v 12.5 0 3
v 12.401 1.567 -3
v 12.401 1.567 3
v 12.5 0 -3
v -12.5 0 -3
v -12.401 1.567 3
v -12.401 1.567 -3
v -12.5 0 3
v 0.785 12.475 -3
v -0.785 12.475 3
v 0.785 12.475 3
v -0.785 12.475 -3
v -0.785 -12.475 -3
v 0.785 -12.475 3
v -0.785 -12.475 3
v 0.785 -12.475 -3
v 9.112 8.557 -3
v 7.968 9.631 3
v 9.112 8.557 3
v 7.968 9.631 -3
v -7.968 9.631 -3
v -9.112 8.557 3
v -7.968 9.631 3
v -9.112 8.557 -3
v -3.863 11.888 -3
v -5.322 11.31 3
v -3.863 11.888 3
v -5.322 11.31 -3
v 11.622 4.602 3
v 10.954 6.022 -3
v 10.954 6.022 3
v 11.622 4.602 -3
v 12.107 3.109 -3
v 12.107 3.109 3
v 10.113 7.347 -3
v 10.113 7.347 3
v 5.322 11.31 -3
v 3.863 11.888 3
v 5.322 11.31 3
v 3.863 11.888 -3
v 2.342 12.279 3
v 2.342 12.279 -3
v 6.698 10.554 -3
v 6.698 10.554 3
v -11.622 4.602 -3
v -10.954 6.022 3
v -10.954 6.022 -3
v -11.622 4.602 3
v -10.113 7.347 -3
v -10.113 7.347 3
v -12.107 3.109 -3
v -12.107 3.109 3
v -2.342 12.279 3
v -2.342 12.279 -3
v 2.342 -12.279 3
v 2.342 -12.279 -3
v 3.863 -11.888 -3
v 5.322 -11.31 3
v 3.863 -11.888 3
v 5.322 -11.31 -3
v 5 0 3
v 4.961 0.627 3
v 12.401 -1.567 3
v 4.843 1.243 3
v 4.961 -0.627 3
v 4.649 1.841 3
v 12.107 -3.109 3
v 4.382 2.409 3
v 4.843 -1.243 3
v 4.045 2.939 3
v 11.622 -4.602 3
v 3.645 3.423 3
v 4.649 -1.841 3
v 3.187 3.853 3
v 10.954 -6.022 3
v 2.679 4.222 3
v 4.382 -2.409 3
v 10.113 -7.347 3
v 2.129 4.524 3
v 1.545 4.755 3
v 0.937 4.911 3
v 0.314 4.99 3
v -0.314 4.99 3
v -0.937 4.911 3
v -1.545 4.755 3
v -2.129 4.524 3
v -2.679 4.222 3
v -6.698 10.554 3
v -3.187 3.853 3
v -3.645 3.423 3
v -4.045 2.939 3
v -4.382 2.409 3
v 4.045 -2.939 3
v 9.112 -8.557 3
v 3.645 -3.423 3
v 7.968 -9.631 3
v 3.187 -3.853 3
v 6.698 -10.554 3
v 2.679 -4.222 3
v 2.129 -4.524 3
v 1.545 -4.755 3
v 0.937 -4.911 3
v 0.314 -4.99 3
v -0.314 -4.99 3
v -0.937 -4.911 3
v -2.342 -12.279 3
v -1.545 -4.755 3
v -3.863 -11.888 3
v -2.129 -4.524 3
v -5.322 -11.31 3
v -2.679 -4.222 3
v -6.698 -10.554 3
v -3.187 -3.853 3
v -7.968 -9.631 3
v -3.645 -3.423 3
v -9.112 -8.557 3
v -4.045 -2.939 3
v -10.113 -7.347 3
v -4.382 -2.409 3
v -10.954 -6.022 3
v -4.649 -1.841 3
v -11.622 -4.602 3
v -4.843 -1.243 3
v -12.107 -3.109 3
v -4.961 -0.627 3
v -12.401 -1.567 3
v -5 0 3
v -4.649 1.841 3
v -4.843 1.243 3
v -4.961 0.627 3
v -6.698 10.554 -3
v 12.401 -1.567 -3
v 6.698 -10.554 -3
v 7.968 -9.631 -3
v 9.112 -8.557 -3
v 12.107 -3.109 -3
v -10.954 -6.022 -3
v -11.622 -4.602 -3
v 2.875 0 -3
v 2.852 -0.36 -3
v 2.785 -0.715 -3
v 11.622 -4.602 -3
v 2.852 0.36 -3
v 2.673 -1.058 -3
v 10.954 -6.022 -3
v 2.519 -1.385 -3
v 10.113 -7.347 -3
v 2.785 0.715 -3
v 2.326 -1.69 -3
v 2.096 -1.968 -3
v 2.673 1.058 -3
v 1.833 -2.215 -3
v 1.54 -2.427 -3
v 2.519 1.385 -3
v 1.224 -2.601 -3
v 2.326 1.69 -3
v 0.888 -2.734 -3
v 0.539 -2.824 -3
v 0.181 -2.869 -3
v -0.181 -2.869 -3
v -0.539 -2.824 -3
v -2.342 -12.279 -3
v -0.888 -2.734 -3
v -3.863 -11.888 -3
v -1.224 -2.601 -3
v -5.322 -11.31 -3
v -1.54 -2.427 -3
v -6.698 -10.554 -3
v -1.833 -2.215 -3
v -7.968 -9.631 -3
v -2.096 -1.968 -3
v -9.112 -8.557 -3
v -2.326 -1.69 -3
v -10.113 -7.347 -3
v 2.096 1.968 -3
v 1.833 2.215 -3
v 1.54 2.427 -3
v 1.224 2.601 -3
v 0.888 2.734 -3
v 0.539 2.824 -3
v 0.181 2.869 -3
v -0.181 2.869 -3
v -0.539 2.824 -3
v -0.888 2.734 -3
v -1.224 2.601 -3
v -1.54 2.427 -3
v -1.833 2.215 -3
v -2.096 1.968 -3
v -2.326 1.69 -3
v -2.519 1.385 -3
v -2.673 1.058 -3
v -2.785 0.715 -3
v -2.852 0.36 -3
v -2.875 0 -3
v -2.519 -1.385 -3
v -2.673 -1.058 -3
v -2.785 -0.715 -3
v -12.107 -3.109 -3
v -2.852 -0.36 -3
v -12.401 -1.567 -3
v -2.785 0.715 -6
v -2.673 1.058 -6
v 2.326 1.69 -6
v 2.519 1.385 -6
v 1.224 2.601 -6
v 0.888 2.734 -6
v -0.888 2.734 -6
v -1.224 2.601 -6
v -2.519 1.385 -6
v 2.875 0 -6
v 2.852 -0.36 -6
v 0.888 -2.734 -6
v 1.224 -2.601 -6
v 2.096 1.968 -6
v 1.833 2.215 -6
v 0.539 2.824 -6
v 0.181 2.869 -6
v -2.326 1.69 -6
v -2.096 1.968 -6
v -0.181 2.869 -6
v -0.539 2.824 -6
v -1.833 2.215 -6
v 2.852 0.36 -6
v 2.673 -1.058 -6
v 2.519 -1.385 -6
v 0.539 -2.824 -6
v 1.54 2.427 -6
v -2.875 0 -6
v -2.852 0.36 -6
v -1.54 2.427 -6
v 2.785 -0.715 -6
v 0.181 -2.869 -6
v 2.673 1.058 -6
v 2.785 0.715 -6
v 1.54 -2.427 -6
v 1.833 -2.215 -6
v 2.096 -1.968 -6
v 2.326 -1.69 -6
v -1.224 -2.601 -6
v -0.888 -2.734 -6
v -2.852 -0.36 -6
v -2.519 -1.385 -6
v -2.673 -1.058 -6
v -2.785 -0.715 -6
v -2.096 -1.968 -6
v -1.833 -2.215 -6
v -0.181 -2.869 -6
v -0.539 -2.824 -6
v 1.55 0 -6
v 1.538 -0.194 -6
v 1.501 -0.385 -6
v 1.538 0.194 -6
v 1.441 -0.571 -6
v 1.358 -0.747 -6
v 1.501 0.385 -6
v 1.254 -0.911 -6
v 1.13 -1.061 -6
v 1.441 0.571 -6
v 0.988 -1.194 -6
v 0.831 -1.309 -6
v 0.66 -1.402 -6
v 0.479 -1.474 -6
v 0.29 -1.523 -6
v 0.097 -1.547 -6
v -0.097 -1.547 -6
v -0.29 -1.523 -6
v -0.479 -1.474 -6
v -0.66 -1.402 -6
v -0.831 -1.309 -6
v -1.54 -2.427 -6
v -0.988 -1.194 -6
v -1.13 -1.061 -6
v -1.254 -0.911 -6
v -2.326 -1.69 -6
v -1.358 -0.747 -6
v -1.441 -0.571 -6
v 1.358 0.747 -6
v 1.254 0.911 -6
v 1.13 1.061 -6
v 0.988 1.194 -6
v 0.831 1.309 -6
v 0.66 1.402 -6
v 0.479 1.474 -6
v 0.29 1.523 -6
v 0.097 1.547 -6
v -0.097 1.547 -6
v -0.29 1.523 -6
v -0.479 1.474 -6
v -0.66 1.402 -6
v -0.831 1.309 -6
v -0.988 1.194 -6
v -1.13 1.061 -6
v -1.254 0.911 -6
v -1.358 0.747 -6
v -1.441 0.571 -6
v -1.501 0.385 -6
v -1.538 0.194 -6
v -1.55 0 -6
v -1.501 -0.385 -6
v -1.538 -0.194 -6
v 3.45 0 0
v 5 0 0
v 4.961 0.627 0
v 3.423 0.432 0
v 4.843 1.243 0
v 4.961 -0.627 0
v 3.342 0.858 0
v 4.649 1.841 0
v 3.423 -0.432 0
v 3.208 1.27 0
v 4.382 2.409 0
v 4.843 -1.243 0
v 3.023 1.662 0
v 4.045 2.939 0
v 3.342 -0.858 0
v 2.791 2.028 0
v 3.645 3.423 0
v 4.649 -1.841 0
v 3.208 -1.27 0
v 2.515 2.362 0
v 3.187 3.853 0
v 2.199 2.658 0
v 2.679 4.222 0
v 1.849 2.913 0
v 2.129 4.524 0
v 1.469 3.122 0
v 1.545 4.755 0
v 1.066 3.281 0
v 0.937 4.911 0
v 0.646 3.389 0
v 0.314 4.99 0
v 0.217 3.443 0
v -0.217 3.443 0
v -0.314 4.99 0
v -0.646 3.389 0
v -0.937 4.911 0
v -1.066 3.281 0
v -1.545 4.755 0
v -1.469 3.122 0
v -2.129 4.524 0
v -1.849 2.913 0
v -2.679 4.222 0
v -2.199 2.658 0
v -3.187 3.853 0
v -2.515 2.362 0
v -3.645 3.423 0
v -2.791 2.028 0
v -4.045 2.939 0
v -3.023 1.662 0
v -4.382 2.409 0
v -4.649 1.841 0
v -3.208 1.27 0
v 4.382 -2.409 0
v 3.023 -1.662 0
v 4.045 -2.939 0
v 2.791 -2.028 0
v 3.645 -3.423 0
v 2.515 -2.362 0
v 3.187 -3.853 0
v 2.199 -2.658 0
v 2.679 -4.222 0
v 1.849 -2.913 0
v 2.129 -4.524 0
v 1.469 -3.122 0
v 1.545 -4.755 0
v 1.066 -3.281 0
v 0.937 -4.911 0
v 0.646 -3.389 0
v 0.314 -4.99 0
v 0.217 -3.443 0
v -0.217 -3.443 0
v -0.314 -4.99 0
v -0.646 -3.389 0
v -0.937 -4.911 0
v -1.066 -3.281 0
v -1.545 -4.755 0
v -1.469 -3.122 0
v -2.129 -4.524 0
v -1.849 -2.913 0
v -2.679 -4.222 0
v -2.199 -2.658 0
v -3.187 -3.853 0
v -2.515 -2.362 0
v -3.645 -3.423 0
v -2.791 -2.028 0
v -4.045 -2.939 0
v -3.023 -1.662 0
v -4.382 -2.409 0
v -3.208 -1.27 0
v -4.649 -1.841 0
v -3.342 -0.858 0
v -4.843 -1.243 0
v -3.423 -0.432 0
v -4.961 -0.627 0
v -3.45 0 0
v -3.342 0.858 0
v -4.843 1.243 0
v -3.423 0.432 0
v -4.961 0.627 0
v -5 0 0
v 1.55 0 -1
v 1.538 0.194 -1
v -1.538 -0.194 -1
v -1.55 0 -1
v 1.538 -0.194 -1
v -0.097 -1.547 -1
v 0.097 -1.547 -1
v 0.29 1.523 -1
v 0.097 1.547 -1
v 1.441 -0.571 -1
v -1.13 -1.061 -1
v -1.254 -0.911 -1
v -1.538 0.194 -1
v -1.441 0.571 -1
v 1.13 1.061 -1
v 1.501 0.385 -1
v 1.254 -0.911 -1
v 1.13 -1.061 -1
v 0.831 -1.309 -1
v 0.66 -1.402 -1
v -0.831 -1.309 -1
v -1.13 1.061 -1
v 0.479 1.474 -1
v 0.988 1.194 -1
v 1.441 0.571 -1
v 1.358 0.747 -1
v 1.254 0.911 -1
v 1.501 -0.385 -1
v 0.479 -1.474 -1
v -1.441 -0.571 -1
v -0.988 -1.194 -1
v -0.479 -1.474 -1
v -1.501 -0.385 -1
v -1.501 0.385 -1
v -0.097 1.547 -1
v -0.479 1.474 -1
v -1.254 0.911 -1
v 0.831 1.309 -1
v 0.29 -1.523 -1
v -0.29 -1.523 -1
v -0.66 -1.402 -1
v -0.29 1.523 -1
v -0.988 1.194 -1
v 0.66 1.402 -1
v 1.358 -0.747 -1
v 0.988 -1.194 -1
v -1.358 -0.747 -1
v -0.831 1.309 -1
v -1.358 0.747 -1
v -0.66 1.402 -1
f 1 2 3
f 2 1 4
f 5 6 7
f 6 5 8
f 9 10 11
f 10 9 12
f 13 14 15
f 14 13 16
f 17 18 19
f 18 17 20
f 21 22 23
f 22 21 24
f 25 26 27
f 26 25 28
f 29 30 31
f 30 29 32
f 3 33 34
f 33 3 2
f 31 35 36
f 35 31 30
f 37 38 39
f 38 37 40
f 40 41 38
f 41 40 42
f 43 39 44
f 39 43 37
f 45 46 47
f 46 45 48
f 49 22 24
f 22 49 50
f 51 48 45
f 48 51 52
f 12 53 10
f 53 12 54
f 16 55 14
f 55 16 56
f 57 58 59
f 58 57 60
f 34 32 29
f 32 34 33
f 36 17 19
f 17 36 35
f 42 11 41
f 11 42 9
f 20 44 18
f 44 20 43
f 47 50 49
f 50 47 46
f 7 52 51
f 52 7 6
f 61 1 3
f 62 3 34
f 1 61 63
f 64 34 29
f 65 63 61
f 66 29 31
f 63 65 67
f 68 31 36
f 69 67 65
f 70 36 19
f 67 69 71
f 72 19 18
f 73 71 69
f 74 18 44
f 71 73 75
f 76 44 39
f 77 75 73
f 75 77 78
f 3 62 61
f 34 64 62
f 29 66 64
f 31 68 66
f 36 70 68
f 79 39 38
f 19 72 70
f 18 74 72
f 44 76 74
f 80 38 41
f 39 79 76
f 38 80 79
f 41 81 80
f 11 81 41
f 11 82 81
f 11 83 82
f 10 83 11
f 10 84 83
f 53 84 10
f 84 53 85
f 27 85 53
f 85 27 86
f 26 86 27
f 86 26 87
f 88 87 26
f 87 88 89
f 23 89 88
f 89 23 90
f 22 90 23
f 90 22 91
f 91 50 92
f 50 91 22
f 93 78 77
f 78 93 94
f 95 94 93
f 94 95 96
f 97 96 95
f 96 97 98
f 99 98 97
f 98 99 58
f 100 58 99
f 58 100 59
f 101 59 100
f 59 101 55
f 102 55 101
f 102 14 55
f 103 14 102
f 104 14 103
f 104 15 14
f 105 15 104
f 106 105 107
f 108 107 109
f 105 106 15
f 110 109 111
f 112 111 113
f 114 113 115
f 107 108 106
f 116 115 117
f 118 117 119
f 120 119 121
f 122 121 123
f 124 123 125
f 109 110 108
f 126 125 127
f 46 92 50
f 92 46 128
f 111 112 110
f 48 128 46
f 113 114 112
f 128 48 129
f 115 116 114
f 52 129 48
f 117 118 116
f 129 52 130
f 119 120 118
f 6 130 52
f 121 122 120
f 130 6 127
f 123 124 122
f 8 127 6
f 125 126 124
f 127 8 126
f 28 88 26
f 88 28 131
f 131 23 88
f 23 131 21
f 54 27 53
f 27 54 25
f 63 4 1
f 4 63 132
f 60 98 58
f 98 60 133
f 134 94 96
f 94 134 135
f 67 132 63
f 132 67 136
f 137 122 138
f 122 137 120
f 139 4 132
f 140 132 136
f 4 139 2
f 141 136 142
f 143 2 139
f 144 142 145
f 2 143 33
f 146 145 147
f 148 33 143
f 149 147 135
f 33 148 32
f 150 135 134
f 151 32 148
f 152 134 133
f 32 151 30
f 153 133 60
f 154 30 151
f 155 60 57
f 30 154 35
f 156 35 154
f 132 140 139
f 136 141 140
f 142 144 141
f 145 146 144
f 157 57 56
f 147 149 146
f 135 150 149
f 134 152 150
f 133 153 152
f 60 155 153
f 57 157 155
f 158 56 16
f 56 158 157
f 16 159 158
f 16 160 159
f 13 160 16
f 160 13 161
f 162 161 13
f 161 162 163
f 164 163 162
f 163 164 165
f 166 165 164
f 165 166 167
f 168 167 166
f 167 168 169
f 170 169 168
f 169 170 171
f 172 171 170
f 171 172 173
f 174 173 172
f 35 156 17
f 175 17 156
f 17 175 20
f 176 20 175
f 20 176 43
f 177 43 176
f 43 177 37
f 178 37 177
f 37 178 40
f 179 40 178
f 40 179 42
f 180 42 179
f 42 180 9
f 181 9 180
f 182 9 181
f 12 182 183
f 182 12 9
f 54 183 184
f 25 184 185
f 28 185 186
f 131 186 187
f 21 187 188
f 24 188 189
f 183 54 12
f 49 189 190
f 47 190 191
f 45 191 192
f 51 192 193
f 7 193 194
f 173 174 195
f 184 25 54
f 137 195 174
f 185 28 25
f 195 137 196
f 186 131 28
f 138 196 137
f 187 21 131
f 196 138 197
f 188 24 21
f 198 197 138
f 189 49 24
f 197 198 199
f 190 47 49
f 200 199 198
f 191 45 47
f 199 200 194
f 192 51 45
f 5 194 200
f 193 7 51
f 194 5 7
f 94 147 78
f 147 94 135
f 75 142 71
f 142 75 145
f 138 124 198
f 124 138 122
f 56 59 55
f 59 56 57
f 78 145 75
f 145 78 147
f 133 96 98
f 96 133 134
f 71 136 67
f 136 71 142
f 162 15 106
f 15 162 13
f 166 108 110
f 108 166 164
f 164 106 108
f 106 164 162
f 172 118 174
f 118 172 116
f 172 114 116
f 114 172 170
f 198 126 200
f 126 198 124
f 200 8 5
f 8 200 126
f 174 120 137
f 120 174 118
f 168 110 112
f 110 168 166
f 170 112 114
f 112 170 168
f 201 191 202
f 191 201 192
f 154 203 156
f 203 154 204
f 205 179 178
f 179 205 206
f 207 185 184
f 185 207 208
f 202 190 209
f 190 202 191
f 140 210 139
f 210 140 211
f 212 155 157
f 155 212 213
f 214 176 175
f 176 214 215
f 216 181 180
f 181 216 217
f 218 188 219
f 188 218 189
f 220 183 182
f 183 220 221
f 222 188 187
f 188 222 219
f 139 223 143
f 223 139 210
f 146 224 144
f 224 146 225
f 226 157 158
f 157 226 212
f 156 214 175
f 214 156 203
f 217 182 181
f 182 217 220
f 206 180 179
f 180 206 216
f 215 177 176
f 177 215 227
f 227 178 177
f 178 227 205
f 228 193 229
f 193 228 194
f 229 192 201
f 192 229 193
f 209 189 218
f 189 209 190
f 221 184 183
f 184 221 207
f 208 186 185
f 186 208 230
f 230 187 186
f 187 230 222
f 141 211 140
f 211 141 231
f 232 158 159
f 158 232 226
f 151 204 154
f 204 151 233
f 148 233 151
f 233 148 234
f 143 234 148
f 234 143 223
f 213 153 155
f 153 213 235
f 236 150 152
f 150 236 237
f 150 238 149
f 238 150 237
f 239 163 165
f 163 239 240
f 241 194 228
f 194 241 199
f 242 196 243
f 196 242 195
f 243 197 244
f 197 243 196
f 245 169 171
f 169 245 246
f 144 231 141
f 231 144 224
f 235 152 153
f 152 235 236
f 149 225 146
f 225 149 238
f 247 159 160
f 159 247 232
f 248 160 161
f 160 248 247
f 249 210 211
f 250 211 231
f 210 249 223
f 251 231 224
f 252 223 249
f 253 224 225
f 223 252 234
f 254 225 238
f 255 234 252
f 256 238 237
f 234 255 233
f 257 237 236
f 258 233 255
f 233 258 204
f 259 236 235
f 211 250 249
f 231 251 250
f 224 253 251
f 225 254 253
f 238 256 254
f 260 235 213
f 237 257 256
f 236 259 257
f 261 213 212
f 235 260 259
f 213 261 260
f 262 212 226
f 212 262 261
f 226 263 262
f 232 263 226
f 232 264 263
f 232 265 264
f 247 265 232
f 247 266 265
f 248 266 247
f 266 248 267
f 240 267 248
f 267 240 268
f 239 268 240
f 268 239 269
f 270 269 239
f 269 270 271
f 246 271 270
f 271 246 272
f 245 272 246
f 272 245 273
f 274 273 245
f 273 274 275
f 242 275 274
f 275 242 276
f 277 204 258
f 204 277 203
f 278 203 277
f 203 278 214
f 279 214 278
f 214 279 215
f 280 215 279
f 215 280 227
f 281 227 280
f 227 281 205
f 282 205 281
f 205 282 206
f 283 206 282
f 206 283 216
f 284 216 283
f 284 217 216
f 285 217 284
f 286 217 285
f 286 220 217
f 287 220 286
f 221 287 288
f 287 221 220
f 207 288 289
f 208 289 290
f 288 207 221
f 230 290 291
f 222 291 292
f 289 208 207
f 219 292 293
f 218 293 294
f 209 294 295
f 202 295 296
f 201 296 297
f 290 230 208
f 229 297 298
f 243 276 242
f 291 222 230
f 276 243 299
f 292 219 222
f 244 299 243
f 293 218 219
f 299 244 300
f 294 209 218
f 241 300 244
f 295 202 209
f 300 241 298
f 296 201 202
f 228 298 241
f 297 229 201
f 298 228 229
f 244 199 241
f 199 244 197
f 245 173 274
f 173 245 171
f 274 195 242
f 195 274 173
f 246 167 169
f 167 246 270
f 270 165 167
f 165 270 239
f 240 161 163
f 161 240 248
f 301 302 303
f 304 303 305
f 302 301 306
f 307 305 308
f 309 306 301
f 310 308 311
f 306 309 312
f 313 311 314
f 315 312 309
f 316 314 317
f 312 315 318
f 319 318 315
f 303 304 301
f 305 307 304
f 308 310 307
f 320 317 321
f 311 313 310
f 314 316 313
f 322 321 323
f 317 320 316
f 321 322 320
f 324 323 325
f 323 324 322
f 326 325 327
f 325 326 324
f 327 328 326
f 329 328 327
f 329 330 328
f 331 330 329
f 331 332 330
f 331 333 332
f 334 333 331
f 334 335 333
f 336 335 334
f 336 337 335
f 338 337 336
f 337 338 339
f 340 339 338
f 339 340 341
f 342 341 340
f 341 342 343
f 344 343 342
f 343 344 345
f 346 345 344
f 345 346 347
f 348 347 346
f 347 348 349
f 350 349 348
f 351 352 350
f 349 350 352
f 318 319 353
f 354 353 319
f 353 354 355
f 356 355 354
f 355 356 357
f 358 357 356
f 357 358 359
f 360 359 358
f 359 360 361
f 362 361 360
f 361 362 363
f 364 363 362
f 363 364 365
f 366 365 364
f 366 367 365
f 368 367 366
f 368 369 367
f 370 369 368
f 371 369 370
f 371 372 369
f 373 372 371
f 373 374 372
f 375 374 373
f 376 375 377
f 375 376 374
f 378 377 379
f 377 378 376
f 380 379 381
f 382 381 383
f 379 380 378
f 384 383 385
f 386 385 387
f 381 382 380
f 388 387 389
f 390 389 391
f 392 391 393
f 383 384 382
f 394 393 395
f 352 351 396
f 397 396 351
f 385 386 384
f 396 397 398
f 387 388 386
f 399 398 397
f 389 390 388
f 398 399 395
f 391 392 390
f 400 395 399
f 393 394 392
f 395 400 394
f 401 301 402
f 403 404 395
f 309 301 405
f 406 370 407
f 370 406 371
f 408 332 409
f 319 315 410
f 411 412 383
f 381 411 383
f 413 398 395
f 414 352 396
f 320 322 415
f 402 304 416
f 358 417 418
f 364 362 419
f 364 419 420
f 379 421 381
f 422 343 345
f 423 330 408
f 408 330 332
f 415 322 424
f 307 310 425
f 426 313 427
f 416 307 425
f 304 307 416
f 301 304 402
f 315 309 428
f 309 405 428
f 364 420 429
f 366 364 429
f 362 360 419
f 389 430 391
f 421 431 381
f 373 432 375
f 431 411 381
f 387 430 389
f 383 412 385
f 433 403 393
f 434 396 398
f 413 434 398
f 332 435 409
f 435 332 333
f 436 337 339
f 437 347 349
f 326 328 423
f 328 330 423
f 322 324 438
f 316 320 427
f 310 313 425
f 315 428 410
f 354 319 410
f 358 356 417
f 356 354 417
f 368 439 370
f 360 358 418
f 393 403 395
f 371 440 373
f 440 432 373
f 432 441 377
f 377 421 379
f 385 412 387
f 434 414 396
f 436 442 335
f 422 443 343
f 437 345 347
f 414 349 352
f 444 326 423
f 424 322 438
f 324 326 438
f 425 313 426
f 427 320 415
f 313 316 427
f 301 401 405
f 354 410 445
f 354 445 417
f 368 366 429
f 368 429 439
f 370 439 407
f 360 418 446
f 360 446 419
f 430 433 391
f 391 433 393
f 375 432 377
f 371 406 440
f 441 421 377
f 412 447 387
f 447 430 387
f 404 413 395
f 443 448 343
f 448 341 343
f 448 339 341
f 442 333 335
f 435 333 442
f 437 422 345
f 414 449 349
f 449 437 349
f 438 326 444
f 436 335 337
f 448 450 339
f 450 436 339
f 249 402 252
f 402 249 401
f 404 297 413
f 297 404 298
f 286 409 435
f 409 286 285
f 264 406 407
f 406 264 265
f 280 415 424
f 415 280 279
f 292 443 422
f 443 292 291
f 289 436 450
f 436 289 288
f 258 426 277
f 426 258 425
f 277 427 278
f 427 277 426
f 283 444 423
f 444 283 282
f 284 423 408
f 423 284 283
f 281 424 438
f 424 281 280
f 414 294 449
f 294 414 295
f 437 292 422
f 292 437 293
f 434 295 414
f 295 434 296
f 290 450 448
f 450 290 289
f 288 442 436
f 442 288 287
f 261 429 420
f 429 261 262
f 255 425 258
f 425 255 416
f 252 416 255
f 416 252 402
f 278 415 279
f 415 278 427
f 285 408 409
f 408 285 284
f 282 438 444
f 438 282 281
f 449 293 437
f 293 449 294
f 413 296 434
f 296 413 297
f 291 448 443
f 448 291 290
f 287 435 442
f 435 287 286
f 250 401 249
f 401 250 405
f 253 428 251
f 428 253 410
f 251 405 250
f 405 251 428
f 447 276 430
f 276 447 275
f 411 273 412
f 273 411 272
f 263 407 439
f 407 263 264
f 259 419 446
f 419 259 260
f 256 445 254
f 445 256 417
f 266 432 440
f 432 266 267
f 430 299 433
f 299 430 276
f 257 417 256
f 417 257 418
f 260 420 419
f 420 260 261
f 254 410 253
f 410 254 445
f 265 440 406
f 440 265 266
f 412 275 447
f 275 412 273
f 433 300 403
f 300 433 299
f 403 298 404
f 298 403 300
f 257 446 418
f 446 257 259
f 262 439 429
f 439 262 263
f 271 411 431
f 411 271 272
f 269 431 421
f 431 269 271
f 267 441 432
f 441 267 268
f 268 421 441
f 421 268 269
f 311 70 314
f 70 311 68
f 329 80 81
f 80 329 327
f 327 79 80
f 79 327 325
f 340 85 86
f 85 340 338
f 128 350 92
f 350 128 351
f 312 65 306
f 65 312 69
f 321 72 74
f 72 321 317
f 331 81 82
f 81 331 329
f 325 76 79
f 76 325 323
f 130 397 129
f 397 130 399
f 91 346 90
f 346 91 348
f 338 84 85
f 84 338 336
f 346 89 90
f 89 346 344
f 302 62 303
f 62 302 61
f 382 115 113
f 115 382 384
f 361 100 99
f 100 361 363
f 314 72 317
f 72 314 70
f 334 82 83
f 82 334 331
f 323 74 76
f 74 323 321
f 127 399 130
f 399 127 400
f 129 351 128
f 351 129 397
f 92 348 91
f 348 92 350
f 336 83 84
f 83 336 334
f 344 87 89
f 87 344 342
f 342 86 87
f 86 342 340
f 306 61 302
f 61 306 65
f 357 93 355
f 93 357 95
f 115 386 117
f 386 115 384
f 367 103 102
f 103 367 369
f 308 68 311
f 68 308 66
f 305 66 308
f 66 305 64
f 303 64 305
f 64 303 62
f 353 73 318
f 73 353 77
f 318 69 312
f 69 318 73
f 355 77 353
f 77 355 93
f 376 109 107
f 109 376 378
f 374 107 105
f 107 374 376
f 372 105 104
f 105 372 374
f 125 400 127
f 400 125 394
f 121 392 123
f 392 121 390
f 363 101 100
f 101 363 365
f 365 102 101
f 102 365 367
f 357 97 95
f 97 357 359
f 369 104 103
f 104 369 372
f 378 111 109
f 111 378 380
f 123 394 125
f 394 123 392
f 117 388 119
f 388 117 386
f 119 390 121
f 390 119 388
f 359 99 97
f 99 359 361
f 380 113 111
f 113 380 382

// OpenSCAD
$fn = 50;

difference() {
	union() {
		translate(v = [0, 0, -3.0]) {
			cylinder(h = 6, r = 12.5);
		}
		#translate(v = [0, 0, -6.0]) {
			cylinder(h = 6, r = 2.875);
		}
	}
	union() {
		translate(v = [0, 0, 0]) {
			rotate(a = [0, 0, 0]) {
				difference() {
					union() {
						translate(v = [0, 0, -6.0]) {
							cylinder(h = 6, r = 1.25);
						}
						translate(v = [0, 0, -1.0]) {
							cylinder(h = 1.0, r1 = 1.55, r2 = 3.45);
						}
						translate(v = [0, 0, -6.0]) {
							cylinder(h = 6, r = 1.55);
						}
						translate(v = [0, 0, -6.0]) {
							cylinder(h = 6, r = 1.25);
						}
					}
					union();
				}
			}
		}
		#cylinder(h = 3, r = 5.0);
	}
}
